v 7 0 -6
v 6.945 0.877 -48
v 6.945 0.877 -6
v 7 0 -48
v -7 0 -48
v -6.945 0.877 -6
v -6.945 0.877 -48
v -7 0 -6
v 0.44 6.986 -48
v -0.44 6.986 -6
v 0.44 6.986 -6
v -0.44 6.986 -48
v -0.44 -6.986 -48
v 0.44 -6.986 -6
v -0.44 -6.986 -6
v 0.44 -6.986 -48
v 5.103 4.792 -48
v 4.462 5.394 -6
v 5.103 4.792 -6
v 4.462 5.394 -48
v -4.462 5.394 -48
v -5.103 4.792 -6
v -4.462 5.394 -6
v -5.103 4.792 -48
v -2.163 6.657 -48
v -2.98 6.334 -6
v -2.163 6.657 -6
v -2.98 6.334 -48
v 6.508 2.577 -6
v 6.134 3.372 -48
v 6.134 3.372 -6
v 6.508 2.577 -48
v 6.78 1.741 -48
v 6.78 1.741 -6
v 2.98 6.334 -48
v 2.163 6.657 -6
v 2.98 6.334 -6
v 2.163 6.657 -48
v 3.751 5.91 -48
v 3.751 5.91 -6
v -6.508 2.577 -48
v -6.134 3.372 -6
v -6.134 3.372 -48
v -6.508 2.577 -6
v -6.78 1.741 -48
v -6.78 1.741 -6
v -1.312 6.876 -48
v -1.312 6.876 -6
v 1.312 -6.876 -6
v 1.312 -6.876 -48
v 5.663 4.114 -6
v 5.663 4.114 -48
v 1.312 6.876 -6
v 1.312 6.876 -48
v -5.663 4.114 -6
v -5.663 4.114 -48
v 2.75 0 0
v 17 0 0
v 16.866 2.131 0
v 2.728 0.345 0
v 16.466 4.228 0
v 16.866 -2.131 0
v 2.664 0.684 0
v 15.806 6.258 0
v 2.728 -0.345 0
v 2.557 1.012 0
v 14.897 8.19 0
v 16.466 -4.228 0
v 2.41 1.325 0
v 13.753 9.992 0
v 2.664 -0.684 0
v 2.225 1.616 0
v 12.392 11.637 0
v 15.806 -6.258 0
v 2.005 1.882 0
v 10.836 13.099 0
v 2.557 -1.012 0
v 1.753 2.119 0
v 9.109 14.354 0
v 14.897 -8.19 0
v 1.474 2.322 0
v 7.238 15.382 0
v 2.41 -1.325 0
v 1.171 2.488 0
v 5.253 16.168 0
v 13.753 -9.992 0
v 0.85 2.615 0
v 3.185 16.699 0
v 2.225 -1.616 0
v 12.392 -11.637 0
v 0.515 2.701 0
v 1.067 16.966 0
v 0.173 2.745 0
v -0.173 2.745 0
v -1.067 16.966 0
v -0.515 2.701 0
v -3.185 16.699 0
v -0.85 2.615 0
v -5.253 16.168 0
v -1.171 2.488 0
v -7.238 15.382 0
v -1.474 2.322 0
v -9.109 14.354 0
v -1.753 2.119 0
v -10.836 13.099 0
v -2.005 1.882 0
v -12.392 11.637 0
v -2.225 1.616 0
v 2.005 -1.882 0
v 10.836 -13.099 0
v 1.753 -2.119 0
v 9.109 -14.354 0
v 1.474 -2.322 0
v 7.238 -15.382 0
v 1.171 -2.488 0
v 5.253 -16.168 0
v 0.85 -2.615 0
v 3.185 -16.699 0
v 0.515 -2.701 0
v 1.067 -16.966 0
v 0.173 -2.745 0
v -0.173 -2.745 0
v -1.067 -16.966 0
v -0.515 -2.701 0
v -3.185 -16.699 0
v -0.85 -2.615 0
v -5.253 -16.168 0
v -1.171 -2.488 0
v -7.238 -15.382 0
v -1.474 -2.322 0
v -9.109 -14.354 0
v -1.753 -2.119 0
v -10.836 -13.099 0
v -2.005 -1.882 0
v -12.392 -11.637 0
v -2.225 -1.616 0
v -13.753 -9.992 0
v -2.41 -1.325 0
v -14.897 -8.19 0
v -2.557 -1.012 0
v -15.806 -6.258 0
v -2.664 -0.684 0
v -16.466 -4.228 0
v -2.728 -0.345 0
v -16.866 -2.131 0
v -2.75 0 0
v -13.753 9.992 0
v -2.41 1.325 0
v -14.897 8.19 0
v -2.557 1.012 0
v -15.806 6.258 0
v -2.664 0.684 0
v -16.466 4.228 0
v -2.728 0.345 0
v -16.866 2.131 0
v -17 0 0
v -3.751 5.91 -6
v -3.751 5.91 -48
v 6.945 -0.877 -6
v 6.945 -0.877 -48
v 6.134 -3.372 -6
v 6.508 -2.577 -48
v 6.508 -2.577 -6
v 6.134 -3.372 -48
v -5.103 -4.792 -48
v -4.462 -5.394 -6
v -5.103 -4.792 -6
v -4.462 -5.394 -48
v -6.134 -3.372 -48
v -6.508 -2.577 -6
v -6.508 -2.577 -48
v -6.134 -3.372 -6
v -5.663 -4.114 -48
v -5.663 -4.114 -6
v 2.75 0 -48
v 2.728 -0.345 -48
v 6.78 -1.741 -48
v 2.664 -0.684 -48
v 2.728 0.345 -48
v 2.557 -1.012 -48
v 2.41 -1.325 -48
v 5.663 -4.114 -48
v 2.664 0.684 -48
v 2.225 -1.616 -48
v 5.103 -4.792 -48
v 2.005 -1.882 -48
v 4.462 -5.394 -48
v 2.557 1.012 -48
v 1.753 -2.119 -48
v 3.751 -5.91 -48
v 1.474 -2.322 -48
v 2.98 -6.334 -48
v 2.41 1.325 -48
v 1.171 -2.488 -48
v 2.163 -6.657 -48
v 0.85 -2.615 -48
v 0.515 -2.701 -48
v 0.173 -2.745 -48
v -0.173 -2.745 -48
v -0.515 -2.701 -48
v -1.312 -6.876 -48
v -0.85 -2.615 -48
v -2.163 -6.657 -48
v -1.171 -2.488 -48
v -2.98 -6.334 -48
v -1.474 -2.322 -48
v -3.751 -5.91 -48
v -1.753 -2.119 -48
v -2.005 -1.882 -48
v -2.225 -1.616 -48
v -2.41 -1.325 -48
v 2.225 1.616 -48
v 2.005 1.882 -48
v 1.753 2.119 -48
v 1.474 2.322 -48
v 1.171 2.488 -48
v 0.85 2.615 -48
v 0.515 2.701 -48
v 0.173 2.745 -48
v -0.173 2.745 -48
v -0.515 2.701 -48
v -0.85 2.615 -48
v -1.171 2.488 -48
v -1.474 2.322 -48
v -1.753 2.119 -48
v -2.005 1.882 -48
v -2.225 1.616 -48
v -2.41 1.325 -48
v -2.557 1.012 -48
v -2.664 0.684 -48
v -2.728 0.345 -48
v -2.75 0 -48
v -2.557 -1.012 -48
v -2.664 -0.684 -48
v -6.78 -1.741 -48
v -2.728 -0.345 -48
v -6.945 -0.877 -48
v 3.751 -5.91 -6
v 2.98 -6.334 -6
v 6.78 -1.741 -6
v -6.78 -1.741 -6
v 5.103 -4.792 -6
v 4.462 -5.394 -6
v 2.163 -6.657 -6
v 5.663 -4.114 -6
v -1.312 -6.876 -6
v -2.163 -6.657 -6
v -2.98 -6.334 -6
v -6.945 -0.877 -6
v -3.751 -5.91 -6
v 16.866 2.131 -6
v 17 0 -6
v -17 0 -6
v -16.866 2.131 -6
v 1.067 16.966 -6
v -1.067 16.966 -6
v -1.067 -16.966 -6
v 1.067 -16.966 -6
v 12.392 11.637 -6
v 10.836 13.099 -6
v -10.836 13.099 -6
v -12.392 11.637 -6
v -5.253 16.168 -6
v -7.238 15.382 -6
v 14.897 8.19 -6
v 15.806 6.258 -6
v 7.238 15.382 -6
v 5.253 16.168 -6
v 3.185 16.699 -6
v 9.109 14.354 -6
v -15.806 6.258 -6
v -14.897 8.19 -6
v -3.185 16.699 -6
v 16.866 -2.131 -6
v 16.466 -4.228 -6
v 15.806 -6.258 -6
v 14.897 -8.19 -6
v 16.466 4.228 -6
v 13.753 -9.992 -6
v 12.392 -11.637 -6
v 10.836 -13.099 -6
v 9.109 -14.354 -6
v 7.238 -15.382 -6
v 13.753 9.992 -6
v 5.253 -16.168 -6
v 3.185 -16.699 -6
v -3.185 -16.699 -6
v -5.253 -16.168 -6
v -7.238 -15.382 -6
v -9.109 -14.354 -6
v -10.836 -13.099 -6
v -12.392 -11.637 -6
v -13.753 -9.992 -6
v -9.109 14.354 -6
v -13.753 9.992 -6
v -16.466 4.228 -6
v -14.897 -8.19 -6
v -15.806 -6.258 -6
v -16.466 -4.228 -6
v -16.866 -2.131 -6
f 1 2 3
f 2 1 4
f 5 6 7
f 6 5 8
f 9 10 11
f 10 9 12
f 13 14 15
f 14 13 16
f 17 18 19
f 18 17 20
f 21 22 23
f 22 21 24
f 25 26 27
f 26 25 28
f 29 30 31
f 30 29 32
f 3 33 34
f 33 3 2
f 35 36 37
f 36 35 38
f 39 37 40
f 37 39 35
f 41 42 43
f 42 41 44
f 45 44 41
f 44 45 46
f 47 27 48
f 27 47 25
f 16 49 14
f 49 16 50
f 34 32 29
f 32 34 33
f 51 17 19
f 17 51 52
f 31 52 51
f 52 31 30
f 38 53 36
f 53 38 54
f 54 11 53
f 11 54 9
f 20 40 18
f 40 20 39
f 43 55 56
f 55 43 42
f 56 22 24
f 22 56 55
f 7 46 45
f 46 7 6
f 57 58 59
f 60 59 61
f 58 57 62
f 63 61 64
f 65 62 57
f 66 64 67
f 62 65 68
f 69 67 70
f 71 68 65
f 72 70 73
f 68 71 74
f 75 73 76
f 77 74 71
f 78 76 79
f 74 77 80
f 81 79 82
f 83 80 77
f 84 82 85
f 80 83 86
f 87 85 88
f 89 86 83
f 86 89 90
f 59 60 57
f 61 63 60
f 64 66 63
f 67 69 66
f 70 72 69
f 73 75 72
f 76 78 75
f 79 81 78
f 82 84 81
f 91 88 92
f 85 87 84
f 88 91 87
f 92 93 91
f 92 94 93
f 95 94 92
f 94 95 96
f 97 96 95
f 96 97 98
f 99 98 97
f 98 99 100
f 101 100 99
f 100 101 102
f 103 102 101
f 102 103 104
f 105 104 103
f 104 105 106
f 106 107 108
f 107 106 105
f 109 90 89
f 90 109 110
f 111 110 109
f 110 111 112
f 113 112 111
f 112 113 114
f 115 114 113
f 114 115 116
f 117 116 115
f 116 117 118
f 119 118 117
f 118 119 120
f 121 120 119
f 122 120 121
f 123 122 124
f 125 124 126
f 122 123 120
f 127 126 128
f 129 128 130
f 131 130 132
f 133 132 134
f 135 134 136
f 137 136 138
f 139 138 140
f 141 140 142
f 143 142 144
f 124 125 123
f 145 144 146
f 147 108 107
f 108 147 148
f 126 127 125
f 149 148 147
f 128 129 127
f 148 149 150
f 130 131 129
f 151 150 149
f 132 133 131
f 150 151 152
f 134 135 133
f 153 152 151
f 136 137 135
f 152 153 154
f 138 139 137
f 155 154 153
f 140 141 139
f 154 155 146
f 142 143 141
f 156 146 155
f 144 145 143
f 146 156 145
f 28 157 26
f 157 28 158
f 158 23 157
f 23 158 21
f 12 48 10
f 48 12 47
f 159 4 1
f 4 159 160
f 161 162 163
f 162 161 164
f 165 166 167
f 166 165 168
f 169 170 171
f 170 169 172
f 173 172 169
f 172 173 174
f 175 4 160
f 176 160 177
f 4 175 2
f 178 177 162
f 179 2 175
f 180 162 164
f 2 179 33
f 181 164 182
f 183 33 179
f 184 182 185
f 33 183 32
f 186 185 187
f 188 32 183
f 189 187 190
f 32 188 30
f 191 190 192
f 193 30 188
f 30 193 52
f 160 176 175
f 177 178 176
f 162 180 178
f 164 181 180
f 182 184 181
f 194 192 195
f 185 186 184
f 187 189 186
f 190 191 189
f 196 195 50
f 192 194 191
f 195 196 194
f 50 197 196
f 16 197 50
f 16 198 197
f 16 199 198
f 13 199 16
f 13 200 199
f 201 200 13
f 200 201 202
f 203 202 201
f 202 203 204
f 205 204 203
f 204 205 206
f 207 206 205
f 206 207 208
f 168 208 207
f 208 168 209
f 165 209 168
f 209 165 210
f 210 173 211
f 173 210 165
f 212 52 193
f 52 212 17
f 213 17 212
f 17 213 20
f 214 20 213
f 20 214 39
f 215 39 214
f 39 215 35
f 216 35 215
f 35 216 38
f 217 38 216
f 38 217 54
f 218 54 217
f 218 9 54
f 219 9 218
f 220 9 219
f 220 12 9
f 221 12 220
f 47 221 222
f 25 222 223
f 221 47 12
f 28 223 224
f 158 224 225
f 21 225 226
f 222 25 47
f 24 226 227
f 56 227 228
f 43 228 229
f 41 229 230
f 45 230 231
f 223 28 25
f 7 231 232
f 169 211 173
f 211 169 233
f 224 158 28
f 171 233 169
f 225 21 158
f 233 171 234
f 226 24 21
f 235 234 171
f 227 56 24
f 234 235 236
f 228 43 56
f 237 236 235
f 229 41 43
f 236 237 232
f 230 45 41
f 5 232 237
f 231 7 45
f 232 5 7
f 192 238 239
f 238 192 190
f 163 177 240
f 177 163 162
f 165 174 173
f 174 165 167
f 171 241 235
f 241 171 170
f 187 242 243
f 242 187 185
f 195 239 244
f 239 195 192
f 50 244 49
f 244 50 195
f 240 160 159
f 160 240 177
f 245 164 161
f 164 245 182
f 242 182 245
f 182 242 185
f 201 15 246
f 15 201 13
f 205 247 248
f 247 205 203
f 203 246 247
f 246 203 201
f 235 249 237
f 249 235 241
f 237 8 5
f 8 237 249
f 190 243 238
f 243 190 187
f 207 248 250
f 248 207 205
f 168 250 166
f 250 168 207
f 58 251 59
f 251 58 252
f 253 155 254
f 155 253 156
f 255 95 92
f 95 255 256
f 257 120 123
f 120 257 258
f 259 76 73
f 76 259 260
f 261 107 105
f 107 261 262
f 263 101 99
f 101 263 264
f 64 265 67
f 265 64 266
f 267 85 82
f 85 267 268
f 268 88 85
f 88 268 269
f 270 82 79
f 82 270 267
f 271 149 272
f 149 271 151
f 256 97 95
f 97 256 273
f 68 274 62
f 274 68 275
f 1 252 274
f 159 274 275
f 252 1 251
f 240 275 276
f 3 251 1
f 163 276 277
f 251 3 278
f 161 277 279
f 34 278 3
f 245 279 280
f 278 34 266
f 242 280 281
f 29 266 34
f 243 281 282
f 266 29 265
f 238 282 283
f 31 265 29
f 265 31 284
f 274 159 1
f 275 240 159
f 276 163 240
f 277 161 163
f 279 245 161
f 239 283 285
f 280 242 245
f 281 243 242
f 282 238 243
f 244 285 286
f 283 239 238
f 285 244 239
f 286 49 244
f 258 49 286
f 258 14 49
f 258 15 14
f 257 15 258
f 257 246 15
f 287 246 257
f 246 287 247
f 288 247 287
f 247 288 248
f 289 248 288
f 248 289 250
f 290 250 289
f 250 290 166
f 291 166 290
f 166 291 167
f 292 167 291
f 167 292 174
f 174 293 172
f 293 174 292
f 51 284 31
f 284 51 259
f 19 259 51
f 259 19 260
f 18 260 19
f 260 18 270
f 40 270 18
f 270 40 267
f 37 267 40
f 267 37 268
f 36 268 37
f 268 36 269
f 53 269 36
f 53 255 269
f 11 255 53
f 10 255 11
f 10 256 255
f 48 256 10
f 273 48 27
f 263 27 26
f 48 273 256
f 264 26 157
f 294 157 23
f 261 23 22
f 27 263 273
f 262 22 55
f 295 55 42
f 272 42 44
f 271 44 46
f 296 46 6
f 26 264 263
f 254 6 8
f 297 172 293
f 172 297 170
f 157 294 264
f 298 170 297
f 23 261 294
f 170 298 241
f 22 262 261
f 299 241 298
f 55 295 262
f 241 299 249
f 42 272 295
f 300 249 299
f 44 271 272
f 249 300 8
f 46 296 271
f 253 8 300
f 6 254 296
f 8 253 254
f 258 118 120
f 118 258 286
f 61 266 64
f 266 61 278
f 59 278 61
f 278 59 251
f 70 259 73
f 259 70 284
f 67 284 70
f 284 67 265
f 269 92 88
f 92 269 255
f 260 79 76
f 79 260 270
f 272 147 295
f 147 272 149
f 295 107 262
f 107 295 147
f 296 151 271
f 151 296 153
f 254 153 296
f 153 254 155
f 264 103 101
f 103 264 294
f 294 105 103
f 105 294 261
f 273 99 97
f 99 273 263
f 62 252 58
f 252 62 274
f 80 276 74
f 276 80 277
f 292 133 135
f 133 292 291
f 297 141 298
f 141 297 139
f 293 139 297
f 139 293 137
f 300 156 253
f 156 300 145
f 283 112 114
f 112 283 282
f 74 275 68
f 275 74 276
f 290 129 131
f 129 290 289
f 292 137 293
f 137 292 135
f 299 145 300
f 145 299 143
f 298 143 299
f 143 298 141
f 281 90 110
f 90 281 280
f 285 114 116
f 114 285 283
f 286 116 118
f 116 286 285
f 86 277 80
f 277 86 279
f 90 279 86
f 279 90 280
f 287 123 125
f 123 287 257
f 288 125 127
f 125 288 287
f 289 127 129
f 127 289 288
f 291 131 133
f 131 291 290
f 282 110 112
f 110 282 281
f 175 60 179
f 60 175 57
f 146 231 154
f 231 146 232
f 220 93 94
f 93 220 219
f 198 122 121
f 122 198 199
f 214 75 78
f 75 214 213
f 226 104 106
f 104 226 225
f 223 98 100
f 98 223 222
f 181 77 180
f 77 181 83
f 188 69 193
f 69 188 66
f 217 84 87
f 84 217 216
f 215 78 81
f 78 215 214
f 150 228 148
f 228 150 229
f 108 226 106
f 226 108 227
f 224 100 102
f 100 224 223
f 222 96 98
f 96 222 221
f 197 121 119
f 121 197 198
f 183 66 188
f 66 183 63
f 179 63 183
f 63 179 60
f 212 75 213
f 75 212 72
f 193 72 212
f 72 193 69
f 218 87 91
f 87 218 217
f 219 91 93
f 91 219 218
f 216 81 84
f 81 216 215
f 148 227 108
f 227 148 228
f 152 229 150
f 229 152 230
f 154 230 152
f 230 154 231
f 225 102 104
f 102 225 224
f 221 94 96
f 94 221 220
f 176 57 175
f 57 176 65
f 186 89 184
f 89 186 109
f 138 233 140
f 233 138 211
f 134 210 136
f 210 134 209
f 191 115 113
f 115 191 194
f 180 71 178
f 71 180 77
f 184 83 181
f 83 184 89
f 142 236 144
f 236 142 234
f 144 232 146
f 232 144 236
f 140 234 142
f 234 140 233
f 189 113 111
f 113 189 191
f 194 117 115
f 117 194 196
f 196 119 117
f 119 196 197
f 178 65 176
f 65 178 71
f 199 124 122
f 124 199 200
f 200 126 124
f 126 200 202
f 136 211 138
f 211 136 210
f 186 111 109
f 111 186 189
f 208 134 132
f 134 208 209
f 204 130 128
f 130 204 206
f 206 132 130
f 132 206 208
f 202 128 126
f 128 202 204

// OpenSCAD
$fn = 50;


difference() {
	union() {
		translate(v = [0, 0, -48.0000000000]) {
			cylinder(h = 48, r = 7.0000000000);
		}
		translate(v = [0, 0, -6.0000000000]) {
			cylinder(h = 6, r = 17.0000000000);
		}
	}
	union() {
		#translate(v = [0, 0, -48]) {
			cylinder(h = 48, r = 2.7500000000);
		}
	}
}
